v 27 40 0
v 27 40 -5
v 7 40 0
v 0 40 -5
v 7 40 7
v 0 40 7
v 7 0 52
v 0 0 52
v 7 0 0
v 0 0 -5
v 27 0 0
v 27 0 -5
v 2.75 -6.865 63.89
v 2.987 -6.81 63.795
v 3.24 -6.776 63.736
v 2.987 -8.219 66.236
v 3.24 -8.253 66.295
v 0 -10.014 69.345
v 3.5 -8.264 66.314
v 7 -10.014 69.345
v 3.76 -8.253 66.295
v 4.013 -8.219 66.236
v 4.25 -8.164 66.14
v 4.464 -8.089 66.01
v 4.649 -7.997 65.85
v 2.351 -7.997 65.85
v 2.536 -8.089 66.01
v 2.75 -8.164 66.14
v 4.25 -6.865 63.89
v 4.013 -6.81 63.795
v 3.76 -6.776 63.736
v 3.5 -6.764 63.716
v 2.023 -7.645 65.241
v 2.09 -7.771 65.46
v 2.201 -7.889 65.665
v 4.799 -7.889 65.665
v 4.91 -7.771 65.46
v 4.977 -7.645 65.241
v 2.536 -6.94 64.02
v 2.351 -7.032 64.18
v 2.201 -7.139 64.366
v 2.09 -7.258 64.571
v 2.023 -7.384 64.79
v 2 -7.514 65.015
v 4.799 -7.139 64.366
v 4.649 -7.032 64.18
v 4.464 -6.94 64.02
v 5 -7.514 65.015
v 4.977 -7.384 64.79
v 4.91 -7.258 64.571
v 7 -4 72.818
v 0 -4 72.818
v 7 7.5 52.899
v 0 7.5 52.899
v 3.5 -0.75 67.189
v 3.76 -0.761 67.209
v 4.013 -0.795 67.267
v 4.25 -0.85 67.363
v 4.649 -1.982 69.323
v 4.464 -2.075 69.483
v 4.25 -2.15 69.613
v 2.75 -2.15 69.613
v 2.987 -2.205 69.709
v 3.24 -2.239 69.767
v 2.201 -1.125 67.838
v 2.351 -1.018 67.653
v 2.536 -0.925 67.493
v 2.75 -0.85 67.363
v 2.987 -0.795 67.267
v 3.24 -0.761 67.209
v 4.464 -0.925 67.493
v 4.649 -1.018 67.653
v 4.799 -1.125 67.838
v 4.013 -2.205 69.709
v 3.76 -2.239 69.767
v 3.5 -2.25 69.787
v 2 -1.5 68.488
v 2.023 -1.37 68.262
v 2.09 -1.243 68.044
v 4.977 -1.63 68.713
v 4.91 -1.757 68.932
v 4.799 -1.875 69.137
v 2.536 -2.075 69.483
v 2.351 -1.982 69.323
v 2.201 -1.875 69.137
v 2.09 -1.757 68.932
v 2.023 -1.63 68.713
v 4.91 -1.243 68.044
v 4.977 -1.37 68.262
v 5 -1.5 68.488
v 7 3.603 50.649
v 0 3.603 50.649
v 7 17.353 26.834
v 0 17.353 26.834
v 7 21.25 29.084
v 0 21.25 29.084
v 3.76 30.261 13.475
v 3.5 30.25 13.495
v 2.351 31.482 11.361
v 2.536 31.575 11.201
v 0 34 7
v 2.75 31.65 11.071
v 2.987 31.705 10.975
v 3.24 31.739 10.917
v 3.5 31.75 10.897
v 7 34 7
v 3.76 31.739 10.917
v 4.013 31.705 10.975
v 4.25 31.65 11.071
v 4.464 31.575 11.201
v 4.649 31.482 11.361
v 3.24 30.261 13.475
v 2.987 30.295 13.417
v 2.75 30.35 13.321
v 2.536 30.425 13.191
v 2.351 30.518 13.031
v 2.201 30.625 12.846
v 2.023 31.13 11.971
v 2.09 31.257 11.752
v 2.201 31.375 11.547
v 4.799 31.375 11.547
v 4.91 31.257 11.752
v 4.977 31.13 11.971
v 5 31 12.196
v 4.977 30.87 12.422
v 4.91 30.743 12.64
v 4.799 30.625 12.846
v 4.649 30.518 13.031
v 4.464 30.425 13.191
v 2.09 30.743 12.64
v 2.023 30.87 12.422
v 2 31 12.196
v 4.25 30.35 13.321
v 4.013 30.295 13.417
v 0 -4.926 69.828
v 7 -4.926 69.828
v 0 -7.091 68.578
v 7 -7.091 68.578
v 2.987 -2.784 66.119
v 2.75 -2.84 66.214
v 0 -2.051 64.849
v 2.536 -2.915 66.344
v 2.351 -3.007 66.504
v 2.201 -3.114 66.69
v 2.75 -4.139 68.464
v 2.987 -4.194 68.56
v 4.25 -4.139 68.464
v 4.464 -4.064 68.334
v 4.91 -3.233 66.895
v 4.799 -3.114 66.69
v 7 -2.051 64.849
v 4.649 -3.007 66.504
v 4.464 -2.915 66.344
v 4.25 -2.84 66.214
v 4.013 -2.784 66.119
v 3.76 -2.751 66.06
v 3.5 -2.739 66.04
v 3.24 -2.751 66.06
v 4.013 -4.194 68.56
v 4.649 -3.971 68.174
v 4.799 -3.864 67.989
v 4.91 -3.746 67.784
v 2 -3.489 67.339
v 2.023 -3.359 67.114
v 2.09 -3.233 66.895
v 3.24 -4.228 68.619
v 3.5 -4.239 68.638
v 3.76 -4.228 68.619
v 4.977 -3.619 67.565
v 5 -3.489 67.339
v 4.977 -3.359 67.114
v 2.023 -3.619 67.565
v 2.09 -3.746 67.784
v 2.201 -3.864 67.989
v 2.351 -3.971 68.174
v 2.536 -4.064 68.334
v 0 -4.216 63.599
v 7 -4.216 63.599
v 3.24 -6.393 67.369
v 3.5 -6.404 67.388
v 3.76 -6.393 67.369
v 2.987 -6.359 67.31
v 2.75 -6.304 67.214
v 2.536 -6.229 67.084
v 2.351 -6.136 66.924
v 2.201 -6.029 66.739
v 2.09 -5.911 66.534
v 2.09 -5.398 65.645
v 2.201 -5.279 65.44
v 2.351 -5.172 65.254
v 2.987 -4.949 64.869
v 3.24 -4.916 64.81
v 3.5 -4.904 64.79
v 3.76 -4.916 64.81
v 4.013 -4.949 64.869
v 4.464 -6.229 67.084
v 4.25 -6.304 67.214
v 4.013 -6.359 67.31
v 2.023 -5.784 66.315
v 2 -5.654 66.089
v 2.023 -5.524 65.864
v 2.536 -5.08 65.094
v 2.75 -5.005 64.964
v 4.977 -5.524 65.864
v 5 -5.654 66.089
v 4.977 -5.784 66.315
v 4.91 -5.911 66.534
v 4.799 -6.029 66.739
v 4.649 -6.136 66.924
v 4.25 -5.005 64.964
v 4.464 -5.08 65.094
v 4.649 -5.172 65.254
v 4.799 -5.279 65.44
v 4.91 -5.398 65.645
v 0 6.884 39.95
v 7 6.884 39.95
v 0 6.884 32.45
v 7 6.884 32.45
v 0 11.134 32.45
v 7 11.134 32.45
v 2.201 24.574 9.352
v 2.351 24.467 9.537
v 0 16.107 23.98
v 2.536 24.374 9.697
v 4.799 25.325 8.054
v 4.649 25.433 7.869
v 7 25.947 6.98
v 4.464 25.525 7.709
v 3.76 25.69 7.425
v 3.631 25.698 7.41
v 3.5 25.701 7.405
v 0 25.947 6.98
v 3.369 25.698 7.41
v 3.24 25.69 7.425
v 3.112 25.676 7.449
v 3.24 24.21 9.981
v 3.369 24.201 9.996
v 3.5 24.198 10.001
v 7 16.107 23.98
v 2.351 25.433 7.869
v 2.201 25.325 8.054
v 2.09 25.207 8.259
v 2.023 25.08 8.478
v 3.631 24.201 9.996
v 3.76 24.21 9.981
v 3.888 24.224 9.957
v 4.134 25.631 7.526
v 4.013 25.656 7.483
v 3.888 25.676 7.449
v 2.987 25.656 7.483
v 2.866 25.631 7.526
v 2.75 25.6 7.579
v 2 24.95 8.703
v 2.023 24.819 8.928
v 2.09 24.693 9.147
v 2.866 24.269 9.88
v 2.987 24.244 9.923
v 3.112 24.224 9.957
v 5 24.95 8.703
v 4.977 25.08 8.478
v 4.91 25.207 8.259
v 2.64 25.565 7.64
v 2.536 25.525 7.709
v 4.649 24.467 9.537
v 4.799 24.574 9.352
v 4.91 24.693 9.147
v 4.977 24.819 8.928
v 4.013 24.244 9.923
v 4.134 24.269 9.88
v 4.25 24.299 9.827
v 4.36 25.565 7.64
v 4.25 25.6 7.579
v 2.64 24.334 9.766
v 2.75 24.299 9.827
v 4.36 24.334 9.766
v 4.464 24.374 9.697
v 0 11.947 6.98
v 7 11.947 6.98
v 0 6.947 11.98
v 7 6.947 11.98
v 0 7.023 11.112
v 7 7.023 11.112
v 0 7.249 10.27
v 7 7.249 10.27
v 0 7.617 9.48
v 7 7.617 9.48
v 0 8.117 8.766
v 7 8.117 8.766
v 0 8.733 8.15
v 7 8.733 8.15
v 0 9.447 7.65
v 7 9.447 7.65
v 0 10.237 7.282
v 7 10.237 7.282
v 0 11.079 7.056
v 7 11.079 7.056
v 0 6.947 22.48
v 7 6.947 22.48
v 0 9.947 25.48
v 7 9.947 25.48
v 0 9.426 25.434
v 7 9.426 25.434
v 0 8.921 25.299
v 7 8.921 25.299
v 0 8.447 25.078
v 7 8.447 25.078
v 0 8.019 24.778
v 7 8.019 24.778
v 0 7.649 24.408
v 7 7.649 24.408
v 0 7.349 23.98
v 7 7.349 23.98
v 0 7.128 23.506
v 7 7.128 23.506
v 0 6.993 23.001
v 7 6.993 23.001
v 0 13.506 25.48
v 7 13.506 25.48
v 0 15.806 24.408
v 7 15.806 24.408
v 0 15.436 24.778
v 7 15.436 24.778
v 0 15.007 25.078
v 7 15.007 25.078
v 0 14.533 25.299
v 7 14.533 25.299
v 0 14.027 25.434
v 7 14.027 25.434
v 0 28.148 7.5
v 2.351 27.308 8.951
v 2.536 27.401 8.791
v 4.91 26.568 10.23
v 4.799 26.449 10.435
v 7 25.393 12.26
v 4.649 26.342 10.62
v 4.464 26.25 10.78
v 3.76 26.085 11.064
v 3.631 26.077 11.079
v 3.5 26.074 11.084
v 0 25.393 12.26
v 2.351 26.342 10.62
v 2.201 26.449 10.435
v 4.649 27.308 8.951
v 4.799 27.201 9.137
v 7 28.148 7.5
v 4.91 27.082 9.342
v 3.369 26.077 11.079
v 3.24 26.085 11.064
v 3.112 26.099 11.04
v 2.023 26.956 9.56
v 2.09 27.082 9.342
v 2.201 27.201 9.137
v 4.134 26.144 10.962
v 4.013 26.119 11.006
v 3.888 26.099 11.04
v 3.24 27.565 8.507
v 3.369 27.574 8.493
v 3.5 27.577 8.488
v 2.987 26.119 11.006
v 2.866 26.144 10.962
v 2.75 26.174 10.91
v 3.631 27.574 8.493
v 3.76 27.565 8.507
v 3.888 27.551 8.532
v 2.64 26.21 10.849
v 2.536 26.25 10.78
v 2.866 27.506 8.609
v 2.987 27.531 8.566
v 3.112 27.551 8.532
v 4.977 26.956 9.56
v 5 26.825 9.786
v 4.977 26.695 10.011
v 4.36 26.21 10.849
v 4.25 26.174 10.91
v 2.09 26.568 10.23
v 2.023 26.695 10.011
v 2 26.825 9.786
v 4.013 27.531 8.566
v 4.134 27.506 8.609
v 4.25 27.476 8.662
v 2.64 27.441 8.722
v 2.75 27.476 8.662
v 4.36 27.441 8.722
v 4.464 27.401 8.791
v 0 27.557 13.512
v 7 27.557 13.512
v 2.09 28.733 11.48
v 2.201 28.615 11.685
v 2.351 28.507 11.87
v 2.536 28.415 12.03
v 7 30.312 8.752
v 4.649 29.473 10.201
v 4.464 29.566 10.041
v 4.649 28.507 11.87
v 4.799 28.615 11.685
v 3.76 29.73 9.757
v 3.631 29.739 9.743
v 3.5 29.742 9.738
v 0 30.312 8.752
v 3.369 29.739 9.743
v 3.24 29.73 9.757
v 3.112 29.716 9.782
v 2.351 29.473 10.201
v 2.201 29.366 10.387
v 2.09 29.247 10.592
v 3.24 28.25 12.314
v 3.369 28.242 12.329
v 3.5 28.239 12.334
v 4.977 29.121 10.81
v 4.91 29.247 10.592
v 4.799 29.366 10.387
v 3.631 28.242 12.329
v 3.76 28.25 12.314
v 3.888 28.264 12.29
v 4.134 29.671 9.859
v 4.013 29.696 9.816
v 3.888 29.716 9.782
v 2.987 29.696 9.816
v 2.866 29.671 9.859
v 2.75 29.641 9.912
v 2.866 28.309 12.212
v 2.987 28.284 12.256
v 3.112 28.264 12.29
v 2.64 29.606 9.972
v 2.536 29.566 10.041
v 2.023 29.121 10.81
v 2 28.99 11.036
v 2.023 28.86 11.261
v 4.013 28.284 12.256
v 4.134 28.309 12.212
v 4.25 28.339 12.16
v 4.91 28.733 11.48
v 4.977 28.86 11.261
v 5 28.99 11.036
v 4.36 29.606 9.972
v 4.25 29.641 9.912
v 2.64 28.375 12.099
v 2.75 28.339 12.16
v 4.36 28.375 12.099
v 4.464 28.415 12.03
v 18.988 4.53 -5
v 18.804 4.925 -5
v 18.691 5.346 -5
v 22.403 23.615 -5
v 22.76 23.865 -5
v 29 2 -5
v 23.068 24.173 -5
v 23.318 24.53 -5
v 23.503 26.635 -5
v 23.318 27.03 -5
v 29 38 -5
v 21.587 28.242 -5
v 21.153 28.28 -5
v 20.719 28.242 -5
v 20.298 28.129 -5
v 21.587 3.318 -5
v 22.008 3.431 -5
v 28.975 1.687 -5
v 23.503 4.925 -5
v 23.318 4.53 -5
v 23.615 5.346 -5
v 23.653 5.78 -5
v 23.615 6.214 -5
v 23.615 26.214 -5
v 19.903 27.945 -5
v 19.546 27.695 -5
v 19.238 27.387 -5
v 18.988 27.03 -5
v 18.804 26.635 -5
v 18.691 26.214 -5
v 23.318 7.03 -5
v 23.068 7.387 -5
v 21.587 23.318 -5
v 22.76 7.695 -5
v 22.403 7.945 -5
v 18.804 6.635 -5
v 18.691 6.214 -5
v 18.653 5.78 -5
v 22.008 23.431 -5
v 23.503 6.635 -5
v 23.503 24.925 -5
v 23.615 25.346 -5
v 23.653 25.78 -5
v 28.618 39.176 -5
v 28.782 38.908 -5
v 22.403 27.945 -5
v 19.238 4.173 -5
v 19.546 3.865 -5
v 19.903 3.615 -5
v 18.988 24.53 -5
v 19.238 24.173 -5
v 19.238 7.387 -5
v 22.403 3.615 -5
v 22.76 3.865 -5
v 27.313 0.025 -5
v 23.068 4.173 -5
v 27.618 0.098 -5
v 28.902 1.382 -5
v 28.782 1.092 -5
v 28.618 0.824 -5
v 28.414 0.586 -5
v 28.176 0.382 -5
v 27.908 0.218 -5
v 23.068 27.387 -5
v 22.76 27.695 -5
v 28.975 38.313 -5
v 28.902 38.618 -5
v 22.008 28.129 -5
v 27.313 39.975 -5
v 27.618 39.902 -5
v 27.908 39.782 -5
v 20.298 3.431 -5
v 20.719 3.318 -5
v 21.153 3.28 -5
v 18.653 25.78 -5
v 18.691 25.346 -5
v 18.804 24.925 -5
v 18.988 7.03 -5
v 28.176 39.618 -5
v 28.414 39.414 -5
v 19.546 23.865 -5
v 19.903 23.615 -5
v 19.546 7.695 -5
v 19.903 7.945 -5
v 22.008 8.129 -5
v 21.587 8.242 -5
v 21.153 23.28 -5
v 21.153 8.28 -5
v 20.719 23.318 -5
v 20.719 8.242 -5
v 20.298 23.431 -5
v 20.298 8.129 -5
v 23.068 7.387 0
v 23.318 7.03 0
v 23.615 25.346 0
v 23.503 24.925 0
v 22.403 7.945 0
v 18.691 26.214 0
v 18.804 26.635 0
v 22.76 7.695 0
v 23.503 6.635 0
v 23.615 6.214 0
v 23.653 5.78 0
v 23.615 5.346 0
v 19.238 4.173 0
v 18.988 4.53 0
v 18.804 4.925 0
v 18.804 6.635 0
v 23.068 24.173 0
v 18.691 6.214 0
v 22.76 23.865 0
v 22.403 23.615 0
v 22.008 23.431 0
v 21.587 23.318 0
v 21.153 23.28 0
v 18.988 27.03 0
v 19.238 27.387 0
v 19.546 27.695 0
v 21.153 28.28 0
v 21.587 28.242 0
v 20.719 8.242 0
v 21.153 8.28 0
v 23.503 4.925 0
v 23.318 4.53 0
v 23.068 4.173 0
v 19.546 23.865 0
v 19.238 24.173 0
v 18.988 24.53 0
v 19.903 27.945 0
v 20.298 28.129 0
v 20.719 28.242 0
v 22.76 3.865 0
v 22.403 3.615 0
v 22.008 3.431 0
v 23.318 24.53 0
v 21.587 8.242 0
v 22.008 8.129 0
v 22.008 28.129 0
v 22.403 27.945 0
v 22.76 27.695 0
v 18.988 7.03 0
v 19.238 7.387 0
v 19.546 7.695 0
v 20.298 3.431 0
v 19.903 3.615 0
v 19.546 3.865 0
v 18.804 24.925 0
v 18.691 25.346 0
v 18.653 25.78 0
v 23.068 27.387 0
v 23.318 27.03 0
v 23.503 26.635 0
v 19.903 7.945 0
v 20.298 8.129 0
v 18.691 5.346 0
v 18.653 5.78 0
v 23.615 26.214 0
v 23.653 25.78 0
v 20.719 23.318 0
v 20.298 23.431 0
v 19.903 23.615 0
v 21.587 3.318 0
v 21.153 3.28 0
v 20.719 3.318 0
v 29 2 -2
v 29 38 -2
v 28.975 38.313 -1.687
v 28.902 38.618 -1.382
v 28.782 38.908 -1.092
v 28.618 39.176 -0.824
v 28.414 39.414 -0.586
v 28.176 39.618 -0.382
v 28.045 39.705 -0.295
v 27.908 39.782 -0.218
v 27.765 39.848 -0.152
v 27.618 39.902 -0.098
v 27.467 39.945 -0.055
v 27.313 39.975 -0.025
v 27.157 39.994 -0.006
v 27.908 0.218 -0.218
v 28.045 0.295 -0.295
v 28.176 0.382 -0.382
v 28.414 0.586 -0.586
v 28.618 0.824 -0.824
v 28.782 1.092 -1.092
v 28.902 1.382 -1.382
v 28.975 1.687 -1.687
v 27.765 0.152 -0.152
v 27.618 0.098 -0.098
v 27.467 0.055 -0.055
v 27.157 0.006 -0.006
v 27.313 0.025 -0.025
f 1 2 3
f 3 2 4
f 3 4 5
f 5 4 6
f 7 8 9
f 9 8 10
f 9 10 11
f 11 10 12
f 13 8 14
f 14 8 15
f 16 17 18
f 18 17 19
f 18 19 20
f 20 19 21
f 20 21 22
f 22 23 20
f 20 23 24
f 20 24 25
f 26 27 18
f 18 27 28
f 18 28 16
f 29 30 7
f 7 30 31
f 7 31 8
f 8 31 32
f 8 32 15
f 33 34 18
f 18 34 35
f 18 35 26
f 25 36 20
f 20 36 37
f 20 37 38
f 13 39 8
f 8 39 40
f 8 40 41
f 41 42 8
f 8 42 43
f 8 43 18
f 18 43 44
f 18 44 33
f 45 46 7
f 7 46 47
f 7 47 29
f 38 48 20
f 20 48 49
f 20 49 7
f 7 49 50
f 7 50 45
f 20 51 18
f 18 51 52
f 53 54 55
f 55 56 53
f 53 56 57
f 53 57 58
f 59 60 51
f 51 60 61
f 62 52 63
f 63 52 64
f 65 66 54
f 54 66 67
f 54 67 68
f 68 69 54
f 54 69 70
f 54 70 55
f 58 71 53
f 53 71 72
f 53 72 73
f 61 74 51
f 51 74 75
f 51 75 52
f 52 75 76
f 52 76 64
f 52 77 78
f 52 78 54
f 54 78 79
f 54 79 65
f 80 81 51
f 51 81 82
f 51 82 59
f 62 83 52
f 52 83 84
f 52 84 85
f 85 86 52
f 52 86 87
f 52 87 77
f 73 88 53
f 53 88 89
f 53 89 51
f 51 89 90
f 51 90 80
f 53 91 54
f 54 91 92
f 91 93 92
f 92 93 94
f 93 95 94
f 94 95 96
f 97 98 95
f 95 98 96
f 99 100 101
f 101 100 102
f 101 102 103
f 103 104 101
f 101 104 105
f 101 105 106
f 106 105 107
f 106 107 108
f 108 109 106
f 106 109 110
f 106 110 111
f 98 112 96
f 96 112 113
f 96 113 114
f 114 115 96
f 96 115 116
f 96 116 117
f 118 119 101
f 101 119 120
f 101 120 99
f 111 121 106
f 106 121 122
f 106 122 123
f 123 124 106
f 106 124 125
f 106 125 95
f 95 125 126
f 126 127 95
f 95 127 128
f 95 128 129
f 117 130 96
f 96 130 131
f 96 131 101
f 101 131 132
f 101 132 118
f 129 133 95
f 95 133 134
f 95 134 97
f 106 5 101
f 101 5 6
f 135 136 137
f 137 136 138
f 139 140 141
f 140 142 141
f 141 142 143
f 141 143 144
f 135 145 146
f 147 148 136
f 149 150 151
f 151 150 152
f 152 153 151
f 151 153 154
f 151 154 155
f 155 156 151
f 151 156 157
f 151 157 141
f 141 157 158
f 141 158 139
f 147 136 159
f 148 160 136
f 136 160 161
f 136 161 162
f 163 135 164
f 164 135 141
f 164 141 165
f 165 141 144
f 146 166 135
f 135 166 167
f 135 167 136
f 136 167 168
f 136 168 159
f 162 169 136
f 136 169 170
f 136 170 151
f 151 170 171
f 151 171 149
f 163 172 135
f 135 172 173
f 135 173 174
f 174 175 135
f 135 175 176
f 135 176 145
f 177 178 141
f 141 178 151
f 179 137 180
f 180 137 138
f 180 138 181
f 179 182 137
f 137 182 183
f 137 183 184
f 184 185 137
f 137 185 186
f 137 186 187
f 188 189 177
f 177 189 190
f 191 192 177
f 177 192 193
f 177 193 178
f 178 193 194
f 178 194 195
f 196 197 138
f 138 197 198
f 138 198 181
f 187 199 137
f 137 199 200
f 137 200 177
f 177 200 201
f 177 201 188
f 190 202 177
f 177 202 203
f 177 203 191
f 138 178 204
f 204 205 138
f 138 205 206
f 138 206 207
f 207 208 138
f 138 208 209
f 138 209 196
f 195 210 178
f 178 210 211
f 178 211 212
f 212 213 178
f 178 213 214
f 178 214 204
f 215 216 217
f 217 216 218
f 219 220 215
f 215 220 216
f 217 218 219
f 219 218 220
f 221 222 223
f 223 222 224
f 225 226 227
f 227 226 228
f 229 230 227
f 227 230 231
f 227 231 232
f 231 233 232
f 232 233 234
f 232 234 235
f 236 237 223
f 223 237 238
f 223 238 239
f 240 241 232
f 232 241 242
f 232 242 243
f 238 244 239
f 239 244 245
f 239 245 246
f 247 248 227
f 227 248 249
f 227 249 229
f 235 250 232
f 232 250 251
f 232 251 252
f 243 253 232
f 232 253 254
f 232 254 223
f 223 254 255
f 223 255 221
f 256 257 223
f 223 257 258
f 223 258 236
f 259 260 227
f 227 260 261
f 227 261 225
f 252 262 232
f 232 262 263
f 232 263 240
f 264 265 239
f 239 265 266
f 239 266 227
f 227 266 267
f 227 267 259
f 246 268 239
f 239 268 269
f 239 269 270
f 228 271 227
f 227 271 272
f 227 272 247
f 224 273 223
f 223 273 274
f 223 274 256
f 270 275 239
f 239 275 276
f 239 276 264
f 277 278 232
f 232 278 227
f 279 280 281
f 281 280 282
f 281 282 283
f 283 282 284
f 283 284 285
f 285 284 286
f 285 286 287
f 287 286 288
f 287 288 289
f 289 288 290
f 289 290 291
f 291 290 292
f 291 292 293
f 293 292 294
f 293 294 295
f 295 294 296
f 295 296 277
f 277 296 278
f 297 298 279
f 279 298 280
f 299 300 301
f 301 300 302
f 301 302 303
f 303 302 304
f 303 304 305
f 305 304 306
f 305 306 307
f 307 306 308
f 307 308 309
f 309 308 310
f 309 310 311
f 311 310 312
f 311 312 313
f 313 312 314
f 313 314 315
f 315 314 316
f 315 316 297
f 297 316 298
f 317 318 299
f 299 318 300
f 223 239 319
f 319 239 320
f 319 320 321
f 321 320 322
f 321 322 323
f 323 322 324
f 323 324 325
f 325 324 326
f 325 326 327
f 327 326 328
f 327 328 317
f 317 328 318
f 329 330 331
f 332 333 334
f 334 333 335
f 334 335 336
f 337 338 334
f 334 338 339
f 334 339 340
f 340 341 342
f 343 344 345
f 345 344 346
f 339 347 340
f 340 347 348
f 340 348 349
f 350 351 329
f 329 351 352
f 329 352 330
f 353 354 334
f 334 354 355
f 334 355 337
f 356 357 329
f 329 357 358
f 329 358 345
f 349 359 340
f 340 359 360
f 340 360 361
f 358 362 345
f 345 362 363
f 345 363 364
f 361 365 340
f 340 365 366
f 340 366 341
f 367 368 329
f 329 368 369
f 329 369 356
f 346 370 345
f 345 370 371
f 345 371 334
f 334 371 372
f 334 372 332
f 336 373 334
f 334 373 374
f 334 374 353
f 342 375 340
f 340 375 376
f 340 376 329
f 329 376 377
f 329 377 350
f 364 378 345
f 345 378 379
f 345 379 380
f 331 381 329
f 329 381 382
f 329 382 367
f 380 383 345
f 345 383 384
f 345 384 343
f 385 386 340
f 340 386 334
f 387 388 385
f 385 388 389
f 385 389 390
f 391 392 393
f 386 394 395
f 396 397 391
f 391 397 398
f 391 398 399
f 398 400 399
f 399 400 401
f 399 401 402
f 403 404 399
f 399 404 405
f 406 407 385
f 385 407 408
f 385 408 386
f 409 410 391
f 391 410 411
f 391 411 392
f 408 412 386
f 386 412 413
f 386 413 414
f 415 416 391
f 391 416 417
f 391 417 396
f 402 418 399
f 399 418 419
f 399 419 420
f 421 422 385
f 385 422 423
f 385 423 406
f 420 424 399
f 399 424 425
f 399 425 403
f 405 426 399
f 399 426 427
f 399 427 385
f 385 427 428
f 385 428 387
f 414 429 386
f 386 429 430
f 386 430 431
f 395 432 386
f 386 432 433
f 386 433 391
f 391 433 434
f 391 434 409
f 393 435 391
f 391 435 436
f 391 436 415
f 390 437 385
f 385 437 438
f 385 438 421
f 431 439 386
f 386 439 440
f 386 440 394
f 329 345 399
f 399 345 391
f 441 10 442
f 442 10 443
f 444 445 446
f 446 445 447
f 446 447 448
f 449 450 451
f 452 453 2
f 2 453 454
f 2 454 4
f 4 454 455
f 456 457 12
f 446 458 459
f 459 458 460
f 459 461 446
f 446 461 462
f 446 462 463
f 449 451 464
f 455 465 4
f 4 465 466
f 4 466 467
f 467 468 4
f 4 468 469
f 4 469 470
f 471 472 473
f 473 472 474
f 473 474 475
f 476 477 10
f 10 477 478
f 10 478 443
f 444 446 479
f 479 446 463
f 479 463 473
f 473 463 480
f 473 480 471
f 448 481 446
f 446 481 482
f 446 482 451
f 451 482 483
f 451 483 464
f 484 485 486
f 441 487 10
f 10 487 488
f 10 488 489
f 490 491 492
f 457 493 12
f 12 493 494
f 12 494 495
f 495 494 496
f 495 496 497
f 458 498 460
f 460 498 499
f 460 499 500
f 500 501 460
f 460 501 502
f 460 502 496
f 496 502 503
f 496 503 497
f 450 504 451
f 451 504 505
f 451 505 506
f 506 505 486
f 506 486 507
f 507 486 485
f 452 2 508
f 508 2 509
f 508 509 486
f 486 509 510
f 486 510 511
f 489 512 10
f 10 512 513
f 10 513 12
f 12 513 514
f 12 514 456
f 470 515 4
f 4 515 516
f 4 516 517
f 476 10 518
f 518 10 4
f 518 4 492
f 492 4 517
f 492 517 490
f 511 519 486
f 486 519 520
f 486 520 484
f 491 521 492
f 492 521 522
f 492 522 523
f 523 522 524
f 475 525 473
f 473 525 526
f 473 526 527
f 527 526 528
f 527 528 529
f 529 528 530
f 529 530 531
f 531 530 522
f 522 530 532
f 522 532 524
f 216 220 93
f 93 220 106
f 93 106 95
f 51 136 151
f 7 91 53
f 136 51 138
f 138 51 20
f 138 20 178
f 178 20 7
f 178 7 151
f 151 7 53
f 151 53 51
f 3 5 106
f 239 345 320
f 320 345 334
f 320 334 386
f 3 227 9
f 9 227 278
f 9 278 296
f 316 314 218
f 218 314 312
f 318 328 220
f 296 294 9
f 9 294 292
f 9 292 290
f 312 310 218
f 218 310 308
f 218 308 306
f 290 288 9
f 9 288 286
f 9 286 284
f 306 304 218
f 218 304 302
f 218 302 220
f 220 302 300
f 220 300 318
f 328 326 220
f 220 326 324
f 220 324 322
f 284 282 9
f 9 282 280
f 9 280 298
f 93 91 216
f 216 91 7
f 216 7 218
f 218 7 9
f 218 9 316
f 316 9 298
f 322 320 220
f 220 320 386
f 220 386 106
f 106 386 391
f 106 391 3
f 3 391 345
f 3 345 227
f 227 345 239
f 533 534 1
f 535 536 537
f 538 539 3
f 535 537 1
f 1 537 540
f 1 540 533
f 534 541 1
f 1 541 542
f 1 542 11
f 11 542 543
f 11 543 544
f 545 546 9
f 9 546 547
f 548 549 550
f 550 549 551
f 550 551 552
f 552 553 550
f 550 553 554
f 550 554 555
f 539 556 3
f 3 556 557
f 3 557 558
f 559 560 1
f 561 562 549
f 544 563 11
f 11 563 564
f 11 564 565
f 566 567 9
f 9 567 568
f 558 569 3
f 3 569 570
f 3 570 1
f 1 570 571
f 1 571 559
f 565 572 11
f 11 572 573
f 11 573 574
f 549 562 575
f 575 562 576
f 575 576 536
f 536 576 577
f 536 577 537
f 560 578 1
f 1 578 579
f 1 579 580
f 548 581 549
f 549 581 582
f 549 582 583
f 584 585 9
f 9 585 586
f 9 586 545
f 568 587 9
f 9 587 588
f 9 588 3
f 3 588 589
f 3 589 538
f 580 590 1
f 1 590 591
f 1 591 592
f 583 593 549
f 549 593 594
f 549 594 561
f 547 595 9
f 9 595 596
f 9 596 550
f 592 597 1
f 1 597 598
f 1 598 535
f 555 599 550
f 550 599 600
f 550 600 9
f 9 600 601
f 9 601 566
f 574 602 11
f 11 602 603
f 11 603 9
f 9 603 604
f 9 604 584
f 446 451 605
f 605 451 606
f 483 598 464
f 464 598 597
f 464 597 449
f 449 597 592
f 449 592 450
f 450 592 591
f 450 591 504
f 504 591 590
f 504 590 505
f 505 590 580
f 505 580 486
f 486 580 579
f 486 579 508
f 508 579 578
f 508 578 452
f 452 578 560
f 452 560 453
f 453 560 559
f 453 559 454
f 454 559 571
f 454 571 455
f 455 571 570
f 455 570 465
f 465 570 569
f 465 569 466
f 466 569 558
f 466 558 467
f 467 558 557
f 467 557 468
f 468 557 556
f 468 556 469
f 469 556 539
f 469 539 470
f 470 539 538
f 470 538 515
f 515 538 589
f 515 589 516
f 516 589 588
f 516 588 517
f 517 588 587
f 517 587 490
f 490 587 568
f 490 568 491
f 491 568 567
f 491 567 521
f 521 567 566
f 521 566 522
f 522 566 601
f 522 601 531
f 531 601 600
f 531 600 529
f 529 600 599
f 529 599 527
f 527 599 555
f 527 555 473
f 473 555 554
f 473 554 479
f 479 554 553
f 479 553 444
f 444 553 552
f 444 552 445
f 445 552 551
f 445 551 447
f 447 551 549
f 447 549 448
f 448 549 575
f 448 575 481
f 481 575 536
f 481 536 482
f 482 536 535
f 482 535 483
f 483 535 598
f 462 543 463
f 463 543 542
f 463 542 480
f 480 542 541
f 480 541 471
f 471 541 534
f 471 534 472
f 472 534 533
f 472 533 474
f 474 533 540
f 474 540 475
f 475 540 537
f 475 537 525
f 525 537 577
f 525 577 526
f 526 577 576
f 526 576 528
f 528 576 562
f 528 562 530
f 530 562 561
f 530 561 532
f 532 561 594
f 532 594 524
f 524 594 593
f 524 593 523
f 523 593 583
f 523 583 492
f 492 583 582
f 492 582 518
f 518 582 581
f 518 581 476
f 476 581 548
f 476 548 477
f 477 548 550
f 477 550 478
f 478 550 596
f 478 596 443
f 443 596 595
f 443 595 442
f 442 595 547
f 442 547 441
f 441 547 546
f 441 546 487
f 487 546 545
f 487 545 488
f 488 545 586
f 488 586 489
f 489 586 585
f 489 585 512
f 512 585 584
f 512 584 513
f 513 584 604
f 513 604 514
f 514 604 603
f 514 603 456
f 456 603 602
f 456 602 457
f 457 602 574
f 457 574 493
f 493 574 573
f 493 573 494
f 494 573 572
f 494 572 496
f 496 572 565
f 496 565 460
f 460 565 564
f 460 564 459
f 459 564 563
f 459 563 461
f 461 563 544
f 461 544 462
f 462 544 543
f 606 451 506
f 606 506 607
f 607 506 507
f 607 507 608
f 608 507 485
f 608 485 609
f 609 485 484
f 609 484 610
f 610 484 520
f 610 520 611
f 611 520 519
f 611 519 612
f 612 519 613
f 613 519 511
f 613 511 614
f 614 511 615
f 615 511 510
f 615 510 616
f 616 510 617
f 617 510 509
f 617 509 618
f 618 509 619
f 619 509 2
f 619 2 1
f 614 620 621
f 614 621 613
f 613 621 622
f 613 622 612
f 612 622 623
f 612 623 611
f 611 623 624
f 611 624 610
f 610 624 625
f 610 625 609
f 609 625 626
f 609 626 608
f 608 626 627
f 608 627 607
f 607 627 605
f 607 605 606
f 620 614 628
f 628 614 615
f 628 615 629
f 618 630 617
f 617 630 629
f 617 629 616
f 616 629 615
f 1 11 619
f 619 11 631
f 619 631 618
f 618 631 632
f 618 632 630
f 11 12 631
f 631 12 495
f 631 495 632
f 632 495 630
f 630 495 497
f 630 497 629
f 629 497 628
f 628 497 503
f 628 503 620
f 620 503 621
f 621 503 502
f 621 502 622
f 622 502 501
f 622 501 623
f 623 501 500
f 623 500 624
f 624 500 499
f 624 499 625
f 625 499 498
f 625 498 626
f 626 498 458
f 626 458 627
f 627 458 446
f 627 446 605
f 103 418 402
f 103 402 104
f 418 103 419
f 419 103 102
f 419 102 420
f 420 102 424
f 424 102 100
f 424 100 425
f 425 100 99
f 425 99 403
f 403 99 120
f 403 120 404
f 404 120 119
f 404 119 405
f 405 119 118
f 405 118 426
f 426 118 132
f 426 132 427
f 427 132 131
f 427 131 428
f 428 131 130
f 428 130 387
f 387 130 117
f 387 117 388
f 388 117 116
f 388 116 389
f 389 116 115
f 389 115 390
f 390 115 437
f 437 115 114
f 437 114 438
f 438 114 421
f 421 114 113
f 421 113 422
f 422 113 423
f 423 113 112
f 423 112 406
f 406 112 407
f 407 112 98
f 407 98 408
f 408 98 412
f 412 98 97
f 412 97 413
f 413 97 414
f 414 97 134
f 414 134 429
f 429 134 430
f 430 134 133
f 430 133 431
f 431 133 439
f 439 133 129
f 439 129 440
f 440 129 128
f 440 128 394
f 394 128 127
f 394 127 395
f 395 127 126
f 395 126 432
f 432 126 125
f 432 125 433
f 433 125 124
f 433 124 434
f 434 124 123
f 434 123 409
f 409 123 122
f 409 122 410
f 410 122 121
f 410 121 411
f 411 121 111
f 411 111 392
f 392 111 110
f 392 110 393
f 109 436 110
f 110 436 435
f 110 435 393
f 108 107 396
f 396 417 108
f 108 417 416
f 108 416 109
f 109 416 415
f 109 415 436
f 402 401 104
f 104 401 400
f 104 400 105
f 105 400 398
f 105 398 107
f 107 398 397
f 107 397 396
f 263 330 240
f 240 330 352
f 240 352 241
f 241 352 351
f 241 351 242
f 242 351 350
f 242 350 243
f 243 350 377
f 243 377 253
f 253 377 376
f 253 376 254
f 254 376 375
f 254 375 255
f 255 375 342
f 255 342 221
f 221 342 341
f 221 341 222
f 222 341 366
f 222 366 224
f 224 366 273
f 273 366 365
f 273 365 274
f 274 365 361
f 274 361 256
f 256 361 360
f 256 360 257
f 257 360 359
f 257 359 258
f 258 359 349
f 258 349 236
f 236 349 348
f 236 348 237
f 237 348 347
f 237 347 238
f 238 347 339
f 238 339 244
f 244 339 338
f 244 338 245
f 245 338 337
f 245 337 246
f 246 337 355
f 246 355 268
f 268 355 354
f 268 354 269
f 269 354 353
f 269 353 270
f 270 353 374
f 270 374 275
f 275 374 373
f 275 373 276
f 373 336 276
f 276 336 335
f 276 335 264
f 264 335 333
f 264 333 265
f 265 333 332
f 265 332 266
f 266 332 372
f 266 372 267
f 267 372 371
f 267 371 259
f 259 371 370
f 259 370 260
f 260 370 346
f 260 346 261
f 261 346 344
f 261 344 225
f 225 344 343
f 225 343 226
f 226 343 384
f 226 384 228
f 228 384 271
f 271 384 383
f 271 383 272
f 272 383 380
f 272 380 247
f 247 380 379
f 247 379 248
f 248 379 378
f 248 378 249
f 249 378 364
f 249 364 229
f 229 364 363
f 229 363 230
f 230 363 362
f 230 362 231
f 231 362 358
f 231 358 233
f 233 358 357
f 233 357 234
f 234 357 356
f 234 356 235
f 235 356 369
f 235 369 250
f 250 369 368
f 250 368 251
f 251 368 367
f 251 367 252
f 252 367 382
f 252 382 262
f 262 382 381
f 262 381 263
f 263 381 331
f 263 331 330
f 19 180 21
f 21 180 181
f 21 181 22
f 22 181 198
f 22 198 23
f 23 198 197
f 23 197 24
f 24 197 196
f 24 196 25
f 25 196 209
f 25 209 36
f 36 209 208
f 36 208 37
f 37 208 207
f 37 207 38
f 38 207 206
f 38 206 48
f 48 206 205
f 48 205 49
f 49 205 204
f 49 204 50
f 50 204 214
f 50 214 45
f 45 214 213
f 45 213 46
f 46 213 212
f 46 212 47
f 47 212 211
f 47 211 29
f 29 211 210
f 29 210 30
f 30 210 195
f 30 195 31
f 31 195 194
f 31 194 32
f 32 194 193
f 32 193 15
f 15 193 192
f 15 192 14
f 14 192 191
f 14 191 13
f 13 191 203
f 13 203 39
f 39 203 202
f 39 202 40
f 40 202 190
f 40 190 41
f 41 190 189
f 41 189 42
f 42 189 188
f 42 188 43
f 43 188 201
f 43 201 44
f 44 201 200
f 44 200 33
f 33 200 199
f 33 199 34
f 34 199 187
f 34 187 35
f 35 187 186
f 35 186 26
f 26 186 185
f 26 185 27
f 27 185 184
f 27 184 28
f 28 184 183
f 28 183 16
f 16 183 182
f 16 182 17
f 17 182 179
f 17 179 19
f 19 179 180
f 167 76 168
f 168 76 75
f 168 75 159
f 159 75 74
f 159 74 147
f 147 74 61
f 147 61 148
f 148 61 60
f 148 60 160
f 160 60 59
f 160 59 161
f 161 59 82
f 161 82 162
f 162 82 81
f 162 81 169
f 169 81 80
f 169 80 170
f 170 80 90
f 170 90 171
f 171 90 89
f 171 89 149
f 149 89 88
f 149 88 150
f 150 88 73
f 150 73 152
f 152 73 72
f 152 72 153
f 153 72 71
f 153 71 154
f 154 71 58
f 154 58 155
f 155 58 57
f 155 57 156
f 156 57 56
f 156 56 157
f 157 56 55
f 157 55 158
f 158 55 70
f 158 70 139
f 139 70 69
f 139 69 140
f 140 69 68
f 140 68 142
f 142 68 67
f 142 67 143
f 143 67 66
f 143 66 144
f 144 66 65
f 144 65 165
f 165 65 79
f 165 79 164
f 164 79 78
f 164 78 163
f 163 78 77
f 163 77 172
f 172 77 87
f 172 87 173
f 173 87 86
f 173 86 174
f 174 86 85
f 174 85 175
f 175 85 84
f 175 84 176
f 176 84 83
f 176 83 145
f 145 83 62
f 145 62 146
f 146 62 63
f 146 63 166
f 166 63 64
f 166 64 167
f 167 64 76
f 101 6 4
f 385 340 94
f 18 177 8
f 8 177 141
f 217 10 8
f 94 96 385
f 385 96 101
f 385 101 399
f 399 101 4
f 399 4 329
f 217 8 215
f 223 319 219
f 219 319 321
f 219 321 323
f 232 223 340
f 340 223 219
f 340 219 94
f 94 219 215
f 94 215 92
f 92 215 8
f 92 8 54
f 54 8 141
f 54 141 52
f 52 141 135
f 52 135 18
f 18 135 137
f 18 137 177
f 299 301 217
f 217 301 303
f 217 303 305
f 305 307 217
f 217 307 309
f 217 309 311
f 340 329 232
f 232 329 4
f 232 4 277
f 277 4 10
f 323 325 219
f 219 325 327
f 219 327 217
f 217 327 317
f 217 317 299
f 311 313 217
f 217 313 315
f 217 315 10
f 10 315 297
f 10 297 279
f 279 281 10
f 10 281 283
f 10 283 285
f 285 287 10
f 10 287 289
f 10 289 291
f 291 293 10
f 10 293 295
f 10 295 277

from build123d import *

# Parameters (mm, degrees)
BOSS_EXTRUDE1_DEPTH  = 7
SKETCH2_W            = 29
SKETCH2_H            = 40
SKETCH2_R            = 2.5
BOSS_EXTRUDE2_DEPTH  = 5
FILLET1_R            = 2
SKETCH3_R            = 1.5
CUT_EXTRUDE1_DEPTH   = 7.5
FILLET1_OF_MIRROR1_R = 2
SKETCH4_W            = 36.671322753
SKETCH4_H            = 72.42791828
CUT_EXTRUDE2_DEPTH   = 78.817930688


with BuildPart() as part:
    # Sketch1 → Boss-Extrude1 (new body)
    with BuildSketch(Plane(origin=(0, 0, 0), x_dir=(0, 0, -1), z_dir=(1, 0, 0))):
        Polygon((0, 0), (0, 40), (-7, 40), (-7, 34), (-29.083647797, 21.25), (-26.833647797, 17.352885683), (-50.649346401, 3.602885683), (-52.899346401, 7.5), (-72.817930688, -4), (-69.345498823, -10.014428415), (-52, 0), align=None)
        Polygon((-69.828328815, -4.926142338), (-64.848682743, -2.051142338), (-63.598682743, -4.216205848), (-68.578328815, -7.091205848), align=None, mode=Mode.SUBTRACT)
        Polygon((-39.949930688, 6.884), (-32.449930688, 11.134), (-32.449930688, 6.884), align=None, mode=Mode.SUBTRACT)
        with BuildLine():
            Line((-6.98, 25.947), (-6.98, 11.947))
            ThreePointArc((-6.98, 11.947), (-8.444466094, 8.411466094), (-11.98, 6.947))
            Line((-11.98, 6.947), (-22.48, 6.947))
            ThreePointArc((-22.48, 6.947), (-24.601320344, 7.825679656), (-25.48, 9.947))
            Line((-25.48, 9.947), (-25.48, 13.505607896))
            ThreePointArc((-25.48, 13.505607896), (-25.078135635, 15.007043949), (-23.98, 16.107))
            Line((-23.98, 16.107), (-6.98, 25.947))
        make_face(mode=Mode.SUBTRACT)
        Polygon((-13.512490144, 27.556681889), (-8.752389988, 30.311939862), (-7.5, 28.148257973), (-12.260100157, 25.393), align=None, mode=Mode.SUBTRACT)
    boss_extrude1 = extrude(amount=-BOSS_EXTRUDE1_DEPTH)

    # Sketch2 → Boss-Extrude2 (add)
    with BuildSketch(Plane(origin=(0, 0, 0), x_dir=(-1, 0, 0), z_dir=(0, 0, -1))):
        with Locations((14.5, 20)):
            Rectangle(SKETCH2_W, SKETCH2_H)
        with Locations((21.15335434, 25.78)):
            Circle(SKETCH2_R, mode=Mode.SUBTRACT)
        with Locations((21.15335434, 5.78)):
            Circle(SKETCH2_R, mode=Mode.SUBTRACT)
    boss_extrude2 = extrude(amount=BOSS_EXTRUDE2_DEPTH)

    # Fillet1
    fillet1_edges = [part.edges().sort_by_distance(p)[0] for p in [
        (-29, 20, 0),
        (-29, 0, -2.5),
        (-29, 40, -2.5),
    ]]
    fillet(fillet1_edges, radius=FILLET1_R)

    # Sketch3 → Cut-Extrude1 (cut)
    with BuildSketch(Plane(origin=(0, 28.531088913, 16.472431864), x_dir=(1, 0, 0), z_dir=(0, 0.866025404, 0.5))):
        with Locations((-3.5, 4.937822174)):
            Circle(SKETCH3_R)
        with Locations((-3.5, -60.062177826)):
            Circle(SKETCH3_R)
    cut_extrude1 = extrude(amount=-CUT_EXTRUDE1_DEPTH, mode=Mode.SUBTRACT)

    # Mirror1: Boss-Extrude1, Boss-Extrude2, Cut-Extrude1 across plane
    add(boss_extrude1.mirror(Plane(origin=(0, 0, 0), x_dir=(0, 0, 1), z_dir=(1, 0, 0))))
    add(boss_extrude2.mirror(Plane(origin=(0, 0, 0), x_dir=(0, 0, 1), z_dir=(1, 0, 0))))
    add(cut_extrude1.mirror(Plane(origin=(0, 0, 0), x_dir=(0, 0, 1), z_dir=(1, 0, 0))), mode=Mode.SUBTRACT)

    # Fillet1 of Mirror1
    fillet1_of_mirror1_edges = [part.edges().sort_by_distance(p)[0] for p in [
        (29, 20, 0),
        (29, 0, -2.5),
        (29, 40, -2.5),
    ]]
    fillet(fillet1_of_mirror1_edges, radius=FILLET1_OF_MIRROR1_R)

    # Sketch4 → Cut-Extrude2 (cut, through all)
    with BuildSketch(Plane(origin=(0, 0, -5), x_dir=(-1, 0, 0), z_dir=(0, 0, -1))):
        with Locations((18.335661377, 3.78604086)):
            Rectangle(SKETCH4_W, SKETCH4_H)
    extrude(amount=-CUT_EXTRUDE2_DEPTH, mode=Mode.SUBTRACT)


solid = part.part
